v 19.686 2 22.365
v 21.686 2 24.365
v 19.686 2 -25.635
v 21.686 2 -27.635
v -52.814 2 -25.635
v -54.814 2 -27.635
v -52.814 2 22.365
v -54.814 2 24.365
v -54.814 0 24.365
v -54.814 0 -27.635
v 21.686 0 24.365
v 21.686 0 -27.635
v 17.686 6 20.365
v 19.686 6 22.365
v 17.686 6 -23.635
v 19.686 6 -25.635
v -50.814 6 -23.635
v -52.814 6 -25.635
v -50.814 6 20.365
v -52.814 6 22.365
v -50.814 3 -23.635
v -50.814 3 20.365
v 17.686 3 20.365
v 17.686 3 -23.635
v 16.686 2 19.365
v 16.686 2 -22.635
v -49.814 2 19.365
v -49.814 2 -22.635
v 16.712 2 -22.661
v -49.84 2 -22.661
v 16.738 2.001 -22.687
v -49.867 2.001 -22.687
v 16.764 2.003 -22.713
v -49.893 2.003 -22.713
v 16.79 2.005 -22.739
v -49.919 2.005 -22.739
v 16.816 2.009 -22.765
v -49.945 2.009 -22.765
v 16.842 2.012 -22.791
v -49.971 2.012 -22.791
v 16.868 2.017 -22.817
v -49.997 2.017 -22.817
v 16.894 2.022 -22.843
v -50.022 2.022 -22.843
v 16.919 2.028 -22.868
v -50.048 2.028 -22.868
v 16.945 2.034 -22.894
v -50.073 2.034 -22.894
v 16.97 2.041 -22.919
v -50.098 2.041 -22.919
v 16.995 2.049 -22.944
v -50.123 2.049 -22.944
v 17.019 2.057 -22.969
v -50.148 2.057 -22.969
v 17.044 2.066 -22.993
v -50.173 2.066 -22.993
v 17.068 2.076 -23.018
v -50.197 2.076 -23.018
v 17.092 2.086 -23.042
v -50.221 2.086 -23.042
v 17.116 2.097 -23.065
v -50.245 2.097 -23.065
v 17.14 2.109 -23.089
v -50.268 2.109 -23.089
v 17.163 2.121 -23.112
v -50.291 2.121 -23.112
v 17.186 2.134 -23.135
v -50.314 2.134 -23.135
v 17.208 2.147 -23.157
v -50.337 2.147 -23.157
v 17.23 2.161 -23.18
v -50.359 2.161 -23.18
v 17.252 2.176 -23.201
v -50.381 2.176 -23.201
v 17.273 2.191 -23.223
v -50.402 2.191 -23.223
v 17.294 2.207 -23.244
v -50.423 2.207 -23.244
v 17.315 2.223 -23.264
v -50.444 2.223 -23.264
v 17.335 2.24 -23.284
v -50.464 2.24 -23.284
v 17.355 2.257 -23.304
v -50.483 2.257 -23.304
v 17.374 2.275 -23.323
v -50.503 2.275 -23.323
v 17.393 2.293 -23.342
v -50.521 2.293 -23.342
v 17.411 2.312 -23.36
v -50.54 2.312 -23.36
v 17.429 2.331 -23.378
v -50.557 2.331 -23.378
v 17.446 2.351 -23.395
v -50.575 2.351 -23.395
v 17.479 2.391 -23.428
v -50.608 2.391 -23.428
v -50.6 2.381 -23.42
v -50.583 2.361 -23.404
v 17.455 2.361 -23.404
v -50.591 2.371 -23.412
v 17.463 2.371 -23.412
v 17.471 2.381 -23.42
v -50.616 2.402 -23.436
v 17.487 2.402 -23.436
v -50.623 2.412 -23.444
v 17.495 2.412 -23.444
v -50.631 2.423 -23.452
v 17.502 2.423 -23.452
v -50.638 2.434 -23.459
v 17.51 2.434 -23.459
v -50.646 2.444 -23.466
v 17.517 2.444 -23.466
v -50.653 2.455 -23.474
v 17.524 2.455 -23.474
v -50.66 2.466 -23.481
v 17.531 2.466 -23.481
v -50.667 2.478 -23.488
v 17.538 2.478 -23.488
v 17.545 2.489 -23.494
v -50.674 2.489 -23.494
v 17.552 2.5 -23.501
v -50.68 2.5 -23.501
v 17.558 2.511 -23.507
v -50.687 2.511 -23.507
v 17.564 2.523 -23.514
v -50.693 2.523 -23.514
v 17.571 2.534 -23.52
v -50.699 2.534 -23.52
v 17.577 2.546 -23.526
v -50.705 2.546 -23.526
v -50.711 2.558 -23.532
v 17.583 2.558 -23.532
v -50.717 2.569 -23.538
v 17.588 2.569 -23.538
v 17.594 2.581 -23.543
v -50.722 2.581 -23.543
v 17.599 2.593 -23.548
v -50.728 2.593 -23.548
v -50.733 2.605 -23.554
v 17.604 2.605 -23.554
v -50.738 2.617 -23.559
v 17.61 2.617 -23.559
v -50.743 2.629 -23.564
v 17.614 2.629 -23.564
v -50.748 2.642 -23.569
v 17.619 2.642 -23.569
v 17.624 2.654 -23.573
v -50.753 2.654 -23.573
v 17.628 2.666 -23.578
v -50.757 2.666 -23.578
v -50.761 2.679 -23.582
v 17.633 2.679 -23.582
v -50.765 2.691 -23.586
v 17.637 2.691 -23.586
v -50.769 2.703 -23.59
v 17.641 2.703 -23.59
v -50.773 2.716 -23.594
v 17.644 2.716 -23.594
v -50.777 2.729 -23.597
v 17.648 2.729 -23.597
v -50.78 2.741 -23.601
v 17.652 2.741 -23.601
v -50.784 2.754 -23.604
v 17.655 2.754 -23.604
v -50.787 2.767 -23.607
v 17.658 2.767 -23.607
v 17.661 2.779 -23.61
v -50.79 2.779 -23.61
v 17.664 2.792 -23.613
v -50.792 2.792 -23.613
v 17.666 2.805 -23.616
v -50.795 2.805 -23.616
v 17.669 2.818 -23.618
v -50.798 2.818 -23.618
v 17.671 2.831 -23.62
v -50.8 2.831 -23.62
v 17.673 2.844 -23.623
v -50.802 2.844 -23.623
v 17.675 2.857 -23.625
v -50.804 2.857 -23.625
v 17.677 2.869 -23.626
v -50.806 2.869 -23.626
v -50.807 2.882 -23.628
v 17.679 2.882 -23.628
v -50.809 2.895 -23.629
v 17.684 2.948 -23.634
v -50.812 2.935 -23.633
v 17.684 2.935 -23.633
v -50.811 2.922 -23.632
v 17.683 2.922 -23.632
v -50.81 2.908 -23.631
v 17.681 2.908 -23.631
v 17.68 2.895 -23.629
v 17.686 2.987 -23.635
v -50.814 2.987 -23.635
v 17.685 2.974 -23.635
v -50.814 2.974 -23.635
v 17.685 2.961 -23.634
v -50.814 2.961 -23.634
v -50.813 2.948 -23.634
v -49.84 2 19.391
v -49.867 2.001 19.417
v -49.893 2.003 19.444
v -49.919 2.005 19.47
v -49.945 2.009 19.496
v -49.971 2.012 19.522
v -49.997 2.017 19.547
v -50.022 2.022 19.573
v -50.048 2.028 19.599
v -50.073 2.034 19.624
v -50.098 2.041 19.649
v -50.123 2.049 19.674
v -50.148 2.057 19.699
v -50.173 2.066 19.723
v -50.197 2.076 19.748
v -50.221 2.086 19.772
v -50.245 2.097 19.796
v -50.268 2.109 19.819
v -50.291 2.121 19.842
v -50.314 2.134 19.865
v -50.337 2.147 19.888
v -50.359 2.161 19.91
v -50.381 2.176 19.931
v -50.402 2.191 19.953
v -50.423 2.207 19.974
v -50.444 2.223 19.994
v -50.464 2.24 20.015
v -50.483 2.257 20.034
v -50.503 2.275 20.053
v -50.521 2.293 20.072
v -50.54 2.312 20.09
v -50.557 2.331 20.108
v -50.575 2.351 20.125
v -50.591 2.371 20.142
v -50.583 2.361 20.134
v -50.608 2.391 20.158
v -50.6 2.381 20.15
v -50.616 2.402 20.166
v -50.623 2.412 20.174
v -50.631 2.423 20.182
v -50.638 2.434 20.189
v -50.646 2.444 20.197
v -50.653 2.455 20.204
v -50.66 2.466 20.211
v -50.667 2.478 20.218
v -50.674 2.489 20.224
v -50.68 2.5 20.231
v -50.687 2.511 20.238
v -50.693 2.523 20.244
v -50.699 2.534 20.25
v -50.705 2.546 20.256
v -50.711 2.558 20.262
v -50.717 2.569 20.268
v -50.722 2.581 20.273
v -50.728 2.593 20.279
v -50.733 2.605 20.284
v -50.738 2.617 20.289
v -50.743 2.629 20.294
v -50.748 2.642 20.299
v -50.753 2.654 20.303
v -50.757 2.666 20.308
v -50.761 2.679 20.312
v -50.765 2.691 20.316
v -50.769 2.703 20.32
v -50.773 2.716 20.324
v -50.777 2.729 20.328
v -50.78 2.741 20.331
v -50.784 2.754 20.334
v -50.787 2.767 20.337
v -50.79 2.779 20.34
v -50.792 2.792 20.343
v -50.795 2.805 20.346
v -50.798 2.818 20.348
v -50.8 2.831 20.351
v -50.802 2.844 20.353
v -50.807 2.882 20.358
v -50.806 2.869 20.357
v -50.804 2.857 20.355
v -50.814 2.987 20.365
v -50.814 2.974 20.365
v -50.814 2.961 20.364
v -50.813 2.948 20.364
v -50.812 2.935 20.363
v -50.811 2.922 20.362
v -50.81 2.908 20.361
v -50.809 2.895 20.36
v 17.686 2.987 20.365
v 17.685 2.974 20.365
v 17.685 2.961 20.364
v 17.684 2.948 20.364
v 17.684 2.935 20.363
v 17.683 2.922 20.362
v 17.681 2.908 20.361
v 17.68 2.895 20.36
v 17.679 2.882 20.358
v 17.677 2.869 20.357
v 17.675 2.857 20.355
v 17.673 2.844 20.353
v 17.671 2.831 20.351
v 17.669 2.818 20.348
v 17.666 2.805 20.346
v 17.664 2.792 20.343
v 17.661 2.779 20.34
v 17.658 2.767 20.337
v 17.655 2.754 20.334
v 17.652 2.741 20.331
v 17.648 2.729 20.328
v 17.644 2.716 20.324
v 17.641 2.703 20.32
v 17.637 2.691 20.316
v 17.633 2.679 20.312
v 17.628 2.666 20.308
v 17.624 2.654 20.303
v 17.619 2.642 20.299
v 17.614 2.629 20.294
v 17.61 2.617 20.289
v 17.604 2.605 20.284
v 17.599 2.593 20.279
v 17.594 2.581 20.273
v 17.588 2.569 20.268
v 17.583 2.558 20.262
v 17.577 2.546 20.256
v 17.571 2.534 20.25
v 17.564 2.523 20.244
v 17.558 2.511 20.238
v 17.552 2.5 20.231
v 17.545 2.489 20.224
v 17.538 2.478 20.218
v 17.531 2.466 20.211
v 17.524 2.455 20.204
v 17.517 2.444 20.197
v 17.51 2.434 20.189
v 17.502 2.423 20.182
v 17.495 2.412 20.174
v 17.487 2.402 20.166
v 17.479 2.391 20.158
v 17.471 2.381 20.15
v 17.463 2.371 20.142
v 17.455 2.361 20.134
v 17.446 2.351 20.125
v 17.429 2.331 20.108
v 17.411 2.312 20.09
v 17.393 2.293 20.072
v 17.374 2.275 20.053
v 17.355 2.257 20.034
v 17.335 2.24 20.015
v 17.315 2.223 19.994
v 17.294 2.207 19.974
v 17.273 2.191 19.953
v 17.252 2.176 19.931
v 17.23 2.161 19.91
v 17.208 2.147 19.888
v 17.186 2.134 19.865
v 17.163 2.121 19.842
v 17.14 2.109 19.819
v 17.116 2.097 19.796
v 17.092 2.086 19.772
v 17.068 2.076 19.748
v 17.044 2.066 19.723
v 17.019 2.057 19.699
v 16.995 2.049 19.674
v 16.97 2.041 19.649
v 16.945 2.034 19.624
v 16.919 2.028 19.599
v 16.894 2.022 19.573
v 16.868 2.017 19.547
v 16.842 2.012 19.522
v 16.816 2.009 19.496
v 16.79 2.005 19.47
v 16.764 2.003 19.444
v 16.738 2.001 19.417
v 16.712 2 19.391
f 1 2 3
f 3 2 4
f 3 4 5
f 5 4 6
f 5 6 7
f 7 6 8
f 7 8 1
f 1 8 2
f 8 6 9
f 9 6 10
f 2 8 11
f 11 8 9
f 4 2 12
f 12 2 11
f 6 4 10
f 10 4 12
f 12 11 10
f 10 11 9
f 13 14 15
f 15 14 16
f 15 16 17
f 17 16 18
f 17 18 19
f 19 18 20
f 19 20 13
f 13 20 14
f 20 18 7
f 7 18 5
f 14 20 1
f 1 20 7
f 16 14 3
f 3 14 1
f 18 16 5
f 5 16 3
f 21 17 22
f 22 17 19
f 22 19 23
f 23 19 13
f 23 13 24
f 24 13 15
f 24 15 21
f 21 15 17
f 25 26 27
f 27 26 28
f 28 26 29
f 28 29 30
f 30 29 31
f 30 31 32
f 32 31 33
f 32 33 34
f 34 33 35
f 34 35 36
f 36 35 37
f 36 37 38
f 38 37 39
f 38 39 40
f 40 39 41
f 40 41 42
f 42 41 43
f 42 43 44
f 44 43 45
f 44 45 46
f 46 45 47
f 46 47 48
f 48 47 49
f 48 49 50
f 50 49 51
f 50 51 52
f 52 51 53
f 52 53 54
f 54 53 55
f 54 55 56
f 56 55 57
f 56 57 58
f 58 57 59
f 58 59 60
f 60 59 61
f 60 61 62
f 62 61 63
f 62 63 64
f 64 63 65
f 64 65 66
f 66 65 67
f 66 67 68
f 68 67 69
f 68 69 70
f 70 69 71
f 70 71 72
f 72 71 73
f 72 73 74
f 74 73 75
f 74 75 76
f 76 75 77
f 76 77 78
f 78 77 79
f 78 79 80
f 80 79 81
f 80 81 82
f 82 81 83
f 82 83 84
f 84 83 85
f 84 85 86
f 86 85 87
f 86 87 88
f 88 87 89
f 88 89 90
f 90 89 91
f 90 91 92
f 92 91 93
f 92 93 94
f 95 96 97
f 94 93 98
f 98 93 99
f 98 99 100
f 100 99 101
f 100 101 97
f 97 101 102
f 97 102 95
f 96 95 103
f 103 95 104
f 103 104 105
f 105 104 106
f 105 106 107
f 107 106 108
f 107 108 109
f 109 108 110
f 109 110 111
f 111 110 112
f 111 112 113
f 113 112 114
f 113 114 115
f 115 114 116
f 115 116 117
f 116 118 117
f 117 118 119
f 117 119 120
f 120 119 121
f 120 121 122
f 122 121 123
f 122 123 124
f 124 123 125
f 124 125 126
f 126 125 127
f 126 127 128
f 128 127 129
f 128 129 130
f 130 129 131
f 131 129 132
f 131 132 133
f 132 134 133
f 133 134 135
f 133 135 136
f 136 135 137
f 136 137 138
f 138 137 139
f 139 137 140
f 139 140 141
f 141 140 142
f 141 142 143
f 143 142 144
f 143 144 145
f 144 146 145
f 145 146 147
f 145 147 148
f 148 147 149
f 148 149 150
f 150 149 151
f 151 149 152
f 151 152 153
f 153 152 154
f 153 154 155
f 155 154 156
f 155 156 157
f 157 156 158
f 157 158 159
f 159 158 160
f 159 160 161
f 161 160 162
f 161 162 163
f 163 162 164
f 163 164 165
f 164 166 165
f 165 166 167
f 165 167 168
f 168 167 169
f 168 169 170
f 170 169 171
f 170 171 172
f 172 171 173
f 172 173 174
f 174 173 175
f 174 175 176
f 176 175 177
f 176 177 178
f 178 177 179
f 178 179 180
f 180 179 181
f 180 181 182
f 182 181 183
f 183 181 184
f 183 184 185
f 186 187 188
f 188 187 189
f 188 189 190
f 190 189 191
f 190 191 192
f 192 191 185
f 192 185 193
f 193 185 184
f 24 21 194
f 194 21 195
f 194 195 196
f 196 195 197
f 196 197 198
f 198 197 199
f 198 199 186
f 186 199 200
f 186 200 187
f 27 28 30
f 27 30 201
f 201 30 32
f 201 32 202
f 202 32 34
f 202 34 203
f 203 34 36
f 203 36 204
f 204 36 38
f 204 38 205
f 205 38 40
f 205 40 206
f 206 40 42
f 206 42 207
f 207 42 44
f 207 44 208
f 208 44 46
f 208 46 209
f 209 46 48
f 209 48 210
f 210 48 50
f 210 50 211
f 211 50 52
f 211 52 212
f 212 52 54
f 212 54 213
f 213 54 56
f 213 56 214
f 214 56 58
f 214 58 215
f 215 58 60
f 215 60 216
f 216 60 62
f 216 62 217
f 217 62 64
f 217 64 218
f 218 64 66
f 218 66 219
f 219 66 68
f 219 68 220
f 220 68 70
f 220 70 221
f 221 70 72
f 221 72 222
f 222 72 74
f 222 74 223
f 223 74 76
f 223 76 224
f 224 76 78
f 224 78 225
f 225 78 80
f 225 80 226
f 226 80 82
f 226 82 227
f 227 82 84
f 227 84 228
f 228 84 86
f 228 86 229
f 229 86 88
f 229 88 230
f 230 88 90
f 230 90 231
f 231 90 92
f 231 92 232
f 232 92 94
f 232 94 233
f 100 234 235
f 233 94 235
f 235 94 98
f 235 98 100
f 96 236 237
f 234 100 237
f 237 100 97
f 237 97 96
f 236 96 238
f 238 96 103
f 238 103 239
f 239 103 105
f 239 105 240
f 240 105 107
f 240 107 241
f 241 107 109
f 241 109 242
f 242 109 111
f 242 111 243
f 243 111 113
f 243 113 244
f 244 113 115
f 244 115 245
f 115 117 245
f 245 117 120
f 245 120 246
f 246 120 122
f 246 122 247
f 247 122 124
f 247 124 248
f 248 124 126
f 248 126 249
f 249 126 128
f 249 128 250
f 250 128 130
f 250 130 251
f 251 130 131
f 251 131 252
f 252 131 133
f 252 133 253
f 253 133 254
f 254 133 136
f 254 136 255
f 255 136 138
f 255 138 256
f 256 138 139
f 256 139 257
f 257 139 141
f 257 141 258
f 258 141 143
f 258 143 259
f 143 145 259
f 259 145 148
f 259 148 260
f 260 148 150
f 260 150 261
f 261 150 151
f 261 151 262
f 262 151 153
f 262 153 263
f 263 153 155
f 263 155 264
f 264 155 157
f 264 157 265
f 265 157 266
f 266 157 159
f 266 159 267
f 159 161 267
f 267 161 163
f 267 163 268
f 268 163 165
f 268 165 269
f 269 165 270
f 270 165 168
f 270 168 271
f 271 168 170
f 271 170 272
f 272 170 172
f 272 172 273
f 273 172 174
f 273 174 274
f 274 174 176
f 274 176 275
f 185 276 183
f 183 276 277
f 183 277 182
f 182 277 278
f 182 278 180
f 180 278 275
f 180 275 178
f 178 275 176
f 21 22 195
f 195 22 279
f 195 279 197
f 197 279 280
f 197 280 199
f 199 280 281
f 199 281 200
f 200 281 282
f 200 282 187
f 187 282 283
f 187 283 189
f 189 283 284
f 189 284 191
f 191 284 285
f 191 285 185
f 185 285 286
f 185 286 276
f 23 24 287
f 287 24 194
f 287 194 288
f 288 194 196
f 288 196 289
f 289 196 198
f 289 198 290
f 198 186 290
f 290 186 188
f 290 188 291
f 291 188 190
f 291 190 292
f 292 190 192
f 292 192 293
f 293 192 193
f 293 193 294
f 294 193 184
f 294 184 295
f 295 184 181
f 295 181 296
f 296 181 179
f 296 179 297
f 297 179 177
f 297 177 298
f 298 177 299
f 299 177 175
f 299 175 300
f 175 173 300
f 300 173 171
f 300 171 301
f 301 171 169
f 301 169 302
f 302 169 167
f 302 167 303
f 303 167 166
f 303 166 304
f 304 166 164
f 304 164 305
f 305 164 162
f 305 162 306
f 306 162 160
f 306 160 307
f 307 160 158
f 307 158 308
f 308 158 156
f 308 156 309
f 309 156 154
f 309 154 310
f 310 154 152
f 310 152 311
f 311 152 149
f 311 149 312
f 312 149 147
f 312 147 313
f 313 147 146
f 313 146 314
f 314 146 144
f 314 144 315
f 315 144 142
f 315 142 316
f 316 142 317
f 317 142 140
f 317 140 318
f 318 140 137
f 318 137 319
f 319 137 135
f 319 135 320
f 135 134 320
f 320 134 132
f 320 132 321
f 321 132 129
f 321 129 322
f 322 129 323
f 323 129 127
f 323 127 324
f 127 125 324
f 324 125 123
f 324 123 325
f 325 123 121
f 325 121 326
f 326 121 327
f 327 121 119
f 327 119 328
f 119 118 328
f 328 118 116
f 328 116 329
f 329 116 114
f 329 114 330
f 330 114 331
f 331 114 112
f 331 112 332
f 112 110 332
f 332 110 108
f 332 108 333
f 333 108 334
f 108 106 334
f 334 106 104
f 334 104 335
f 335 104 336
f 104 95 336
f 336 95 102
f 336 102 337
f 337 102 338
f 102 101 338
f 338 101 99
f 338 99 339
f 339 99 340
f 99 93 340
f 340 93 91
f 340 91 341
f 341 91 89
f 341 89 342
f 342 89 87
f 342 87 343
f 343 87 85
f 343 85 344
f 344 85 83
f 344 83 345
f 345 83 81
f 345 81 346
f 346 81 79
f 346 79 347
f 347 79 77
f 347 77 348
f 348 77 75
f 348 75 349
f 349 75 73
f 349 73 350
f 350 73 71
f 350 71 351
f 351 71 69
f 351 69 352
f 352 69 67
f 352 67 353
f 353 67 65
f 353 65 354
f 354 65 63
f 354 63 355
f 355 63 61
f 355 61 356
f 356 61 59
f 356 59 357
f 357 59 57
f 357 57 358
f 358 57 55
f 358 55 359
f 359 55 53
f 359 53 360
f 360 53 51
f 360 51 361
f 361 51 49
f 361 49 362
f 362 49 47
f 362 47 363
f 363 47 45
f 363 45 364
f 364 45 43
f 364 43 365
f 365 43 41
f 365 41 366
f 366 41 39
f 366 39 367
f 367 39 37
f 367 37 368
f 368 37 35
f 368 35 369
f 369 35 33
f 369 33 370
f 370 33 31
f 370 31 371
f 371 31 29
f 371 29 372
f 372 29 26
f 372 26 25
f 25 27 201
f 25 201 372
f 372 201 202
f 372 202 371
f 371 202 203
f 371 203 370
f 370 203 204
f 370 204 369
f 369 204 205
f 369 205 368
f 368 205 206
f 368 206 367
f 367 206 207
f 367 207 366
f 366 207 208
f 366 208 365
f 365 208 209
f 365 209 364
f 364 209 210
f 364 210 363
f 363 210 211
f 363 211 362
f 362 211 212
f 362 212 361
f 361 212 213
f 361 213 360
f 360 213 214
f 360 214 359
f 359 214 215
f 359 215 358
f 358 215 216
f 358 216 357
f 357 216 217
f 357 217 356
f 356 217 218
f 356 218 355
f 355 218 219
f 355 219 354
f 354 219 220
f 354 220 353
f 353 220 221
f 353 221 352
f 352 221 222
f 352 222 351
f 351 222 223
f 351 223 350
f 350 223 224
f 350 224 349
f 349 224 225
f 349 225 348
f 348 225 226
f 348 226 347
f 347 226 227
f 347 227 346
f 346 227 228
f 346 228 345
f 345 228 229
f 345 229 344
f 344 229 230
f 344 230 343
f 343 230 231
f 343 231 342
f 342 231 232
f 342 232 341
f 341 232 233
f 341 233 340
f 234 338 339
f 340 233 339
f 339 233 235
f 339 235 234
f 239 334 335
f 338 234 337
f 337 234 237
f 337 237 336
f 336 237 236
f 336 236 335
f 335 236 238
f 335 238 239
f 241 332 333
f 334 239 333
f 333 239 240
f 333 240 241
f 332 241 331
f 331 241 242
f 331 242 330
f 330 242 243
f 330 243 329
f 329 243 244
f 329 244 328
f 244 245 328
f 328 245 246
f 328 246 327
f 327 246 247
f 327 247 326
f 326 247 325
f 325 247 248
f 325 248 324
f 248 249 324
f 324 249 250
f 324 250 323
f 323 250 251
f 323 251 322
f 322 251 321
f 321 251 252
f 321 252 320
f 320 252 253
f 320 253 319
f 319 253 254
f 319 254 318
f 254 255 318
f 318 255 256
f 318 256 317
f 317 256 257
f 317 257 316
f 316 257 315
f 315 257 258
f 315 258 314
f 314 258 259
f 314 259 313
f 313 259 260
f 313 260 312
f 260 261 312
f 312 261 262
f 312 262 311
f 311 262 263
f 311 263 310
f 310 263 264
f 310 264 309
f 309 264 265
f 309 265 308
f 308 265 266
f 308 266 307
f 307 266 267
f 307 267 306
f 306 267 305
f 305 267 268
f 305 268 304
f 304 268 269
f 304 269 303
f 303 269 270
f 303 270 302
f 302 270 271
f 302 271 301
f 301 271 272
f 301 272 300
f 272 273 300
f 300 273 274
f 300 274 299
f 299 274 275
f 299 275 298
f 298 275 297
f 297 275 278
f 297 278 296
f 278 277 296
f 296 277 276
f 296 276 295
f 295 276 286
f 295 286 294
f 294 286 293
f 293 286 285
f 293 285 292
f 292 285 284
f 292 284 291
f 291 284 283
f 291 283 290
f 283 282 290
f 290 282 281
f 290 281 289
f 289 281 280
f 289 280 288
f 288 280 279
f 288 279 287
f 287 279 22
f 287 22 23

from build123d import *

# Parameters (mm, degrees)
SKETCH_1_W      = 76.5
SKETCH_1_H      = 52
EXTRUDE_1_DEPTH = 2
SKETCH_2_W      = 72.5
SKETCH_2_H      = 48
SKETCH_2_W_2    = 68.5
SKETCH_2_H_2    = 44
EXTRUDE_2_DEPTH = 4
FILLET_1_R      = 1


with BuildPart() as part:
    # Эскиз1 → Бобышка-Вытянуть1 (new body)
    with BuildSketch(Plane(origin=(0, 0, 0), x_dir=(1, 0, 0), z_dir=(0, 1, 0))):
        with Locations((-16.564317774, 1.63491921)):
            Rectangle(SKETCH_1_W, SKETCH_1_H)
    extrude(amount=EXTRUDE_1_DEPTH)

    # Эскиз2 → Бобышка-Вытянуть2 (add)
    with BuildSketch(Plane(origin=(0, 2, 0), x_dir=(1, 0, 0), z_dir=(0, 1, 0))):
        with Locations((-16.564317774, 1.63491921)):
            Rectangle(SKETCH_2_W, SKETCH_2_H)
        with Locations((-16.564317774, 1.63491921)):
            Rectangle(SKETCH_2_W_2, SKETCH_2_H_2, mode=Mode.SUBTRACT)
    extrude(amount=EXTRUDE_2_DEPTH)

    # Скругление1
    fillet_1_edges = [part.edges().sort_by_distance(p)[0] for p in [
        (-50.814317774, 2, -1.63491921),
        (-16.564317774, 2, 20.36508079),
        (17.685682226, 2, -1.63491921),
        (-16.564317774, 2, -23.63491921),
    ]]
    fillet(fillet_1_edges, radius=FILLET_1_R)


solid = part.part
